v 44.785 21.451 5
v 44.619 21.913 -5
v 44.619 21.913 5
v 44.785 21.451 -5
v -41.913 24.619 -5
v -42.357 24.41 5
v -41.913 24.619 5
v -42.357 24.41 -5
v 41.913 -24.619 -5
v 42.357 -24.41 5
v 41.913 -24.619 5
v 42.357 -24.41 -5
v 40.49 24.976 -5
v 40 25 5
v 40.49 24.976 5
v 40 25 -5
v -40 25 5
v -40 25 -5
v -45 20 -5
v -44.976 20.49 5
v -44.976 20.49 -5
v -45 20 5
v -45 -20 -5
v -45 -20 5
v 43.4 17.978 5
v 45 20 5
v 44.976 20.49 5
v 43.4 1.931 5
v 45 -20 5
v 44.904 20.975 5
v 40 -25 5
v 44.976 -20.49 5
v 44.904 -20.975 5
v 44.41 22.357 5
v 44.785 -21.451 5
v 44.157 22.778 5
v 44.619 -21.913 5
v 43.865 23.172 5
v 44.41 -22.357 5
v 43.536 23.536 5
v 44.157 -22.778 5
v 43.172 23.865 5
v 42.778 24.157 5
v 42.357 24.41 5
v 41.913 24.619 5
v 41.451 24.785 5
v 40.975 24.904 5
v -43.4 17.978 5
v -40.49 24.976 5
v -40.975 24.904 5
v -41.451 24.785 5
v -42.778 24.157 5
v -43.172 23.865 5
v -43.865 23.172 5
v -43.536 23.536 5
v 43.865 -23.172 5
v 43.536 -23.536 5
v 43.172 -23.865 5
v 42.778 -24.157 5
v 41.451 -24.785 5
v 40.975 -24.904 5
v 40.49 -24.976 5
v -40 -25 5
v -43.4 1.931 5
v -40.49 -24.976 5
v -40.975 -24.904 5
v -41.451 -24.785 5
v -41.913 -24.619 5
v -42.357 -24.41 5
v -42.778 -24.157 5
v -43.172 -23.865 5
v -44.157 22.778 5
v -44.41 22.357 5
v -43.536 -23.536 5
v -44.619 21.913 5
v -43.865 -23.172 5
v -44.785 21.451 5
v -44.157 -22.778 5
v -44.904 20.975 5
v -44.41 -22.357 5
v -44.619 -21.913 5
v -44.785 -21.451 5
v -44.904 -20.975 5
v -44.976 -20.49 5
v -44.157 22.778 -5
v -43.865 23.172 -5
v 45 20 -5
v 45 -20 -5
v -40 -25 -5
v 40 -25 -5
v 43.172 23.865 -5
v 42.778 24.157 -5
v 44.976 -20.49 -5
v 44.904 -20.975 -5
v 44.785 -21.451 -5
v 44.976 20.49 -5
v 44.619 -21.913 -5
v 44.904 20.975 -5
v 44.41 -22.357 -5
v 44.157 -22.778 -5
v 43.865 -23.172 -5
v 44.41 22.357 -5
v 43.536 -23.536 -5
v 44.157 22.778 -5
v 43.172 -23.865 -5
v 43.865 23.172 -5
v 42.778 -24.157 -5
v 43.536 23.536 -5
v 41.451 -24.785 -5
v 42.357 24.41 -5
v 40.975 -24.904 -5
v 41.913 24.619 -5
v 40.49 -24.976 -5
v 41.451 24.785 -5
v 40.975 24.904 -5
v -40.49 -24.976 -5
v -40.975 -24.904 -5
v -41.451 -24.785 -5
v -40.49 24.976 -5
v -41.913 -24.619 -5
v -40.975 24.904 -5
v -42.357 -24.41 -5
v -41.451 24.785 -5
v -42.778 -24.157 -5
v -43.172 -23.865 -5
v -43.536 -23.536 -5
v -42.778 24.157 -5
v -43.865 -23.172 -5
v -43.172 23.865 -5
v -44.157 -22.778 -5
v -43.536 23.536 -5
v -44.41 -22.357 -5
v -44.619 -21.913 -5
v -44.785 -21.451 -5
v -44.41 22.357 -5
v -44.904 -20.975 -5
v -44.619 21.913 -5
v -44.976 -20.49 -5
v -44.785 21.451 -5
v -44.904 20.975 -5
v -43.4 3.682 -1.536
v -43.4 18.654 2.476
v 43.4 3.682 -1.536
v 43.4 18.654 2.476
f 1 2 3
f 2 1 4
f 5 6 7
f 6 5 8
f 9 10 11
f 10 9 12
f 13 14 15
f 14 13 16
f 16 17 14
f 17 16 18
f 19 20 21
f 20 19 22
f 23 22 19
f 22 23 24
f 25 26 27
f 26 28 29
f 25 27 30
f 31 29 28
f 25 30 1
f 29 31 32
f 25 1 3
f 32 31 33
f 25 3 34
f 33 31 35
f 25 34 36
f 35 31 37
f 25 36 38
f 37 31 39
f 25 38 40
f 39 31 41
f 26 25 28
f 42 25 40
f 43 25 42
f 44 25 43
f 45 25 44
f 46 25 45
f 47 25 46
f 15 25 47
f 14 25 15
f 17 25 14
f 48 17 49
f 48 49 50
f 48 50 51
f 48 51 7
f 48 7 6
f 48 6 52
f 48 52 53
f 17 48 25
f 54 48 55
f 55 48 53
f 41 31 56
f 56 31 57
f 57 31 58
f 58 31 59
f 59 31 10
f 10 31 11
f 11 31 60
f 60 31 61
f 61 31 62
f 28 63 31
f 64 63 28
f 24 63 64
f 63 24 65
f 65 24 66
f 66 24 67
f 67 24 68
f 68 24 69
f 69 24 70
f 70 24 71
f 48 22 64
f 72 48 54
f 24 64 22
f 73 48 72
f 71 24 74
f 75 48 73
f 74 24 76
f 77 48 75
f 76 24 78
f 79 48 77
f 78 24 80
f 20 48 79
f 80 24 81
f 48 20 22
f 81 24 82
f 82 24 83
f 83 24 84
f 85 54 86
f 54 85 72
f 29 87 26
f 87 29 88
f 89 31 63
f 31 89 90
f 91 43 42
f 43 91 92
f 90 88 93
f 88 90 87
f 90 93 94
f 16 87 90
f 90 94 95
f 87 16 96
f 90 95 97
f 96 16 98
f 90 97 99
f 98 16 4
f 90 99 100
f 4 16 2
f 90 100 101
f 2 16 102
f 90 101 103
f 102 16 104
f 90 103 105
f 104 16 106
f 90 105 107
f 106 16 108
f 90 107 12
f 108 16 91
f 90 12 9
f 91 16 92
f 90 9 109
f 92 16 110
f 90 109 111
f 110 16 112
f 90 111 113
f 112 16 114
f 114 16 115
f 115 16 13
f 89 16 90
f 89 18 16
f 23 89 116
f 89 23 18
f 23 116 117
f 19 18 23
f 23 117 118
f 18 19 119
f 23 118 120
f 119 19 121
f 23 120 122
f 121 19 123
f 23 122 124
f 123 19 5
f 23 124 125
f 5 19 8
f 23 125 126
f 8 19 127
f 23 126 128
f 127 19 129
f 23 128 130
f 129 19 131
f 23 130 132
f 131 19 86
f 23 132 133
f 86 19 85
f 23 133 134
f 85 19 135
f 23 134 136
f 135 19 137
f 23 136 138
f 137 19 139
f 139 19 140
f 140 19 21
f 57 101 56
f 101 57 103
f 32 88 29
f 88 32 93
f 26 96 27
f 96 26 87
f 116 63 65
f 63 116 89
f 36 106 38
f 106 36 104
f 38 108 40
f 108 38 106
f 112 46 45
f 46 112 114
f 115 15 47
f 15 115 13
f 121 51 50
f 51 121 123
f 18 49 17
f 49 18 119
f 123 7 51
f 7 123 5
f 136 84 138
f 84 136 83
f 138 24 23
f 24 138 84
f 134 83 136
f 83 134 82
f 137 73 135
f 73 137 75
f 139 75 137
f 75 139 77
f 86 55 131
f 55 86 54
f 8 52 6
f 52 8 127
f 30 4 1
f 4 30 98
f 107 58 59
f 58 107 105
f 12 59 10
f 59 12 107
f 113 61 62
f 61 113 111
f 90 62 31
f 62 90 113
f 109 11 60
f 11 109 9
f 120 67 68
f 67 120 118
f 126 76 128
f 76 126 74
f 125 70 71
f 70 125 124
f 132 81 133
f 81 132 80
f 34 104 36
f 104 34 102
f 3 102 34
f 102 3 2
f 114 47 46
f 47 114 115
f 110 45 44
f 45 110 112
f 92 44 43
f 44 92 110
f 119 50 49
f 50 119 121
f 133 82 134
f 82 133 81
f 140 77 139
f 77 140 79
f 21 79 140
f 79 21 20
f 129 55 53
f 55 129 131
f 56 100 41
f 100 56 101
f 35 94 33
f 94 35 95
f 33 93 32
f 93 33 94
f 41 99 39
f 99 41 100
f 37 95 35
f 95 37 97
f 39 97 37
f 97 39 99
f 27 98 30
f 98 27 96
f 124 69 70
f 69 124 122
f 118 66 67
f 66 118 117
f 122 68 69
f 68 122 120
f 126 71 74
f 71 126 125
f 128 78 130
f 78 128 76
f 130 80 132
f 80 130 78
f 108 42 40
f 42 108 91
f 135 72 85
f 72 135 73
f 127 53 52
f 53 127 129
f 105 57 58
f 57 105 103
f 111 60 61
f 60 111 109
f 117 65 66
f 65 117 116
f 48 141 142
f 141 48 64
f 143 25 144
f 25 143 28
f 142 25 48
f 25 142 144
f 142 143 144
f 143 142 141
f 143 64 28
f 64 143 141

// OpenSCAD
// Smoothness of curves
$fn = 64; 

// --- UPDATED BASE BLOCK (Horizontal) ---
length1 = 90;   
width1 = 50;    
height1 = 10;   
r1 = 5; // Corner radius

module base_block() {
    minkowski() {
        cube([length1 - 2*r1, width1 - 2*r1, height1], center=true);
        cylinder(r=r1, h=0.0001, center=true);
    }
}

// --- PERPENDICULAR BLOCK (Straight edges) ---
lengthEsp = 86.80;
widthEsp = 15.5;
heightEsp = 86.30;

module perp_block() {
    cube([lengthEsp, widthEsp, heightEsp], center=true);
}

// --- ASSEMBLY ---
difference() {
    // 1. Main body to keep
    base_block();
    
    // 2. Body to cut out (lowered and tilted 15 degrees)
    translate([0, 0, (height1 / 2) + (heightEsp / 2) - 6]) //  a -8 build is a bit more sturdy
    rotate([15, 0, 0])
    perp_block();
}
